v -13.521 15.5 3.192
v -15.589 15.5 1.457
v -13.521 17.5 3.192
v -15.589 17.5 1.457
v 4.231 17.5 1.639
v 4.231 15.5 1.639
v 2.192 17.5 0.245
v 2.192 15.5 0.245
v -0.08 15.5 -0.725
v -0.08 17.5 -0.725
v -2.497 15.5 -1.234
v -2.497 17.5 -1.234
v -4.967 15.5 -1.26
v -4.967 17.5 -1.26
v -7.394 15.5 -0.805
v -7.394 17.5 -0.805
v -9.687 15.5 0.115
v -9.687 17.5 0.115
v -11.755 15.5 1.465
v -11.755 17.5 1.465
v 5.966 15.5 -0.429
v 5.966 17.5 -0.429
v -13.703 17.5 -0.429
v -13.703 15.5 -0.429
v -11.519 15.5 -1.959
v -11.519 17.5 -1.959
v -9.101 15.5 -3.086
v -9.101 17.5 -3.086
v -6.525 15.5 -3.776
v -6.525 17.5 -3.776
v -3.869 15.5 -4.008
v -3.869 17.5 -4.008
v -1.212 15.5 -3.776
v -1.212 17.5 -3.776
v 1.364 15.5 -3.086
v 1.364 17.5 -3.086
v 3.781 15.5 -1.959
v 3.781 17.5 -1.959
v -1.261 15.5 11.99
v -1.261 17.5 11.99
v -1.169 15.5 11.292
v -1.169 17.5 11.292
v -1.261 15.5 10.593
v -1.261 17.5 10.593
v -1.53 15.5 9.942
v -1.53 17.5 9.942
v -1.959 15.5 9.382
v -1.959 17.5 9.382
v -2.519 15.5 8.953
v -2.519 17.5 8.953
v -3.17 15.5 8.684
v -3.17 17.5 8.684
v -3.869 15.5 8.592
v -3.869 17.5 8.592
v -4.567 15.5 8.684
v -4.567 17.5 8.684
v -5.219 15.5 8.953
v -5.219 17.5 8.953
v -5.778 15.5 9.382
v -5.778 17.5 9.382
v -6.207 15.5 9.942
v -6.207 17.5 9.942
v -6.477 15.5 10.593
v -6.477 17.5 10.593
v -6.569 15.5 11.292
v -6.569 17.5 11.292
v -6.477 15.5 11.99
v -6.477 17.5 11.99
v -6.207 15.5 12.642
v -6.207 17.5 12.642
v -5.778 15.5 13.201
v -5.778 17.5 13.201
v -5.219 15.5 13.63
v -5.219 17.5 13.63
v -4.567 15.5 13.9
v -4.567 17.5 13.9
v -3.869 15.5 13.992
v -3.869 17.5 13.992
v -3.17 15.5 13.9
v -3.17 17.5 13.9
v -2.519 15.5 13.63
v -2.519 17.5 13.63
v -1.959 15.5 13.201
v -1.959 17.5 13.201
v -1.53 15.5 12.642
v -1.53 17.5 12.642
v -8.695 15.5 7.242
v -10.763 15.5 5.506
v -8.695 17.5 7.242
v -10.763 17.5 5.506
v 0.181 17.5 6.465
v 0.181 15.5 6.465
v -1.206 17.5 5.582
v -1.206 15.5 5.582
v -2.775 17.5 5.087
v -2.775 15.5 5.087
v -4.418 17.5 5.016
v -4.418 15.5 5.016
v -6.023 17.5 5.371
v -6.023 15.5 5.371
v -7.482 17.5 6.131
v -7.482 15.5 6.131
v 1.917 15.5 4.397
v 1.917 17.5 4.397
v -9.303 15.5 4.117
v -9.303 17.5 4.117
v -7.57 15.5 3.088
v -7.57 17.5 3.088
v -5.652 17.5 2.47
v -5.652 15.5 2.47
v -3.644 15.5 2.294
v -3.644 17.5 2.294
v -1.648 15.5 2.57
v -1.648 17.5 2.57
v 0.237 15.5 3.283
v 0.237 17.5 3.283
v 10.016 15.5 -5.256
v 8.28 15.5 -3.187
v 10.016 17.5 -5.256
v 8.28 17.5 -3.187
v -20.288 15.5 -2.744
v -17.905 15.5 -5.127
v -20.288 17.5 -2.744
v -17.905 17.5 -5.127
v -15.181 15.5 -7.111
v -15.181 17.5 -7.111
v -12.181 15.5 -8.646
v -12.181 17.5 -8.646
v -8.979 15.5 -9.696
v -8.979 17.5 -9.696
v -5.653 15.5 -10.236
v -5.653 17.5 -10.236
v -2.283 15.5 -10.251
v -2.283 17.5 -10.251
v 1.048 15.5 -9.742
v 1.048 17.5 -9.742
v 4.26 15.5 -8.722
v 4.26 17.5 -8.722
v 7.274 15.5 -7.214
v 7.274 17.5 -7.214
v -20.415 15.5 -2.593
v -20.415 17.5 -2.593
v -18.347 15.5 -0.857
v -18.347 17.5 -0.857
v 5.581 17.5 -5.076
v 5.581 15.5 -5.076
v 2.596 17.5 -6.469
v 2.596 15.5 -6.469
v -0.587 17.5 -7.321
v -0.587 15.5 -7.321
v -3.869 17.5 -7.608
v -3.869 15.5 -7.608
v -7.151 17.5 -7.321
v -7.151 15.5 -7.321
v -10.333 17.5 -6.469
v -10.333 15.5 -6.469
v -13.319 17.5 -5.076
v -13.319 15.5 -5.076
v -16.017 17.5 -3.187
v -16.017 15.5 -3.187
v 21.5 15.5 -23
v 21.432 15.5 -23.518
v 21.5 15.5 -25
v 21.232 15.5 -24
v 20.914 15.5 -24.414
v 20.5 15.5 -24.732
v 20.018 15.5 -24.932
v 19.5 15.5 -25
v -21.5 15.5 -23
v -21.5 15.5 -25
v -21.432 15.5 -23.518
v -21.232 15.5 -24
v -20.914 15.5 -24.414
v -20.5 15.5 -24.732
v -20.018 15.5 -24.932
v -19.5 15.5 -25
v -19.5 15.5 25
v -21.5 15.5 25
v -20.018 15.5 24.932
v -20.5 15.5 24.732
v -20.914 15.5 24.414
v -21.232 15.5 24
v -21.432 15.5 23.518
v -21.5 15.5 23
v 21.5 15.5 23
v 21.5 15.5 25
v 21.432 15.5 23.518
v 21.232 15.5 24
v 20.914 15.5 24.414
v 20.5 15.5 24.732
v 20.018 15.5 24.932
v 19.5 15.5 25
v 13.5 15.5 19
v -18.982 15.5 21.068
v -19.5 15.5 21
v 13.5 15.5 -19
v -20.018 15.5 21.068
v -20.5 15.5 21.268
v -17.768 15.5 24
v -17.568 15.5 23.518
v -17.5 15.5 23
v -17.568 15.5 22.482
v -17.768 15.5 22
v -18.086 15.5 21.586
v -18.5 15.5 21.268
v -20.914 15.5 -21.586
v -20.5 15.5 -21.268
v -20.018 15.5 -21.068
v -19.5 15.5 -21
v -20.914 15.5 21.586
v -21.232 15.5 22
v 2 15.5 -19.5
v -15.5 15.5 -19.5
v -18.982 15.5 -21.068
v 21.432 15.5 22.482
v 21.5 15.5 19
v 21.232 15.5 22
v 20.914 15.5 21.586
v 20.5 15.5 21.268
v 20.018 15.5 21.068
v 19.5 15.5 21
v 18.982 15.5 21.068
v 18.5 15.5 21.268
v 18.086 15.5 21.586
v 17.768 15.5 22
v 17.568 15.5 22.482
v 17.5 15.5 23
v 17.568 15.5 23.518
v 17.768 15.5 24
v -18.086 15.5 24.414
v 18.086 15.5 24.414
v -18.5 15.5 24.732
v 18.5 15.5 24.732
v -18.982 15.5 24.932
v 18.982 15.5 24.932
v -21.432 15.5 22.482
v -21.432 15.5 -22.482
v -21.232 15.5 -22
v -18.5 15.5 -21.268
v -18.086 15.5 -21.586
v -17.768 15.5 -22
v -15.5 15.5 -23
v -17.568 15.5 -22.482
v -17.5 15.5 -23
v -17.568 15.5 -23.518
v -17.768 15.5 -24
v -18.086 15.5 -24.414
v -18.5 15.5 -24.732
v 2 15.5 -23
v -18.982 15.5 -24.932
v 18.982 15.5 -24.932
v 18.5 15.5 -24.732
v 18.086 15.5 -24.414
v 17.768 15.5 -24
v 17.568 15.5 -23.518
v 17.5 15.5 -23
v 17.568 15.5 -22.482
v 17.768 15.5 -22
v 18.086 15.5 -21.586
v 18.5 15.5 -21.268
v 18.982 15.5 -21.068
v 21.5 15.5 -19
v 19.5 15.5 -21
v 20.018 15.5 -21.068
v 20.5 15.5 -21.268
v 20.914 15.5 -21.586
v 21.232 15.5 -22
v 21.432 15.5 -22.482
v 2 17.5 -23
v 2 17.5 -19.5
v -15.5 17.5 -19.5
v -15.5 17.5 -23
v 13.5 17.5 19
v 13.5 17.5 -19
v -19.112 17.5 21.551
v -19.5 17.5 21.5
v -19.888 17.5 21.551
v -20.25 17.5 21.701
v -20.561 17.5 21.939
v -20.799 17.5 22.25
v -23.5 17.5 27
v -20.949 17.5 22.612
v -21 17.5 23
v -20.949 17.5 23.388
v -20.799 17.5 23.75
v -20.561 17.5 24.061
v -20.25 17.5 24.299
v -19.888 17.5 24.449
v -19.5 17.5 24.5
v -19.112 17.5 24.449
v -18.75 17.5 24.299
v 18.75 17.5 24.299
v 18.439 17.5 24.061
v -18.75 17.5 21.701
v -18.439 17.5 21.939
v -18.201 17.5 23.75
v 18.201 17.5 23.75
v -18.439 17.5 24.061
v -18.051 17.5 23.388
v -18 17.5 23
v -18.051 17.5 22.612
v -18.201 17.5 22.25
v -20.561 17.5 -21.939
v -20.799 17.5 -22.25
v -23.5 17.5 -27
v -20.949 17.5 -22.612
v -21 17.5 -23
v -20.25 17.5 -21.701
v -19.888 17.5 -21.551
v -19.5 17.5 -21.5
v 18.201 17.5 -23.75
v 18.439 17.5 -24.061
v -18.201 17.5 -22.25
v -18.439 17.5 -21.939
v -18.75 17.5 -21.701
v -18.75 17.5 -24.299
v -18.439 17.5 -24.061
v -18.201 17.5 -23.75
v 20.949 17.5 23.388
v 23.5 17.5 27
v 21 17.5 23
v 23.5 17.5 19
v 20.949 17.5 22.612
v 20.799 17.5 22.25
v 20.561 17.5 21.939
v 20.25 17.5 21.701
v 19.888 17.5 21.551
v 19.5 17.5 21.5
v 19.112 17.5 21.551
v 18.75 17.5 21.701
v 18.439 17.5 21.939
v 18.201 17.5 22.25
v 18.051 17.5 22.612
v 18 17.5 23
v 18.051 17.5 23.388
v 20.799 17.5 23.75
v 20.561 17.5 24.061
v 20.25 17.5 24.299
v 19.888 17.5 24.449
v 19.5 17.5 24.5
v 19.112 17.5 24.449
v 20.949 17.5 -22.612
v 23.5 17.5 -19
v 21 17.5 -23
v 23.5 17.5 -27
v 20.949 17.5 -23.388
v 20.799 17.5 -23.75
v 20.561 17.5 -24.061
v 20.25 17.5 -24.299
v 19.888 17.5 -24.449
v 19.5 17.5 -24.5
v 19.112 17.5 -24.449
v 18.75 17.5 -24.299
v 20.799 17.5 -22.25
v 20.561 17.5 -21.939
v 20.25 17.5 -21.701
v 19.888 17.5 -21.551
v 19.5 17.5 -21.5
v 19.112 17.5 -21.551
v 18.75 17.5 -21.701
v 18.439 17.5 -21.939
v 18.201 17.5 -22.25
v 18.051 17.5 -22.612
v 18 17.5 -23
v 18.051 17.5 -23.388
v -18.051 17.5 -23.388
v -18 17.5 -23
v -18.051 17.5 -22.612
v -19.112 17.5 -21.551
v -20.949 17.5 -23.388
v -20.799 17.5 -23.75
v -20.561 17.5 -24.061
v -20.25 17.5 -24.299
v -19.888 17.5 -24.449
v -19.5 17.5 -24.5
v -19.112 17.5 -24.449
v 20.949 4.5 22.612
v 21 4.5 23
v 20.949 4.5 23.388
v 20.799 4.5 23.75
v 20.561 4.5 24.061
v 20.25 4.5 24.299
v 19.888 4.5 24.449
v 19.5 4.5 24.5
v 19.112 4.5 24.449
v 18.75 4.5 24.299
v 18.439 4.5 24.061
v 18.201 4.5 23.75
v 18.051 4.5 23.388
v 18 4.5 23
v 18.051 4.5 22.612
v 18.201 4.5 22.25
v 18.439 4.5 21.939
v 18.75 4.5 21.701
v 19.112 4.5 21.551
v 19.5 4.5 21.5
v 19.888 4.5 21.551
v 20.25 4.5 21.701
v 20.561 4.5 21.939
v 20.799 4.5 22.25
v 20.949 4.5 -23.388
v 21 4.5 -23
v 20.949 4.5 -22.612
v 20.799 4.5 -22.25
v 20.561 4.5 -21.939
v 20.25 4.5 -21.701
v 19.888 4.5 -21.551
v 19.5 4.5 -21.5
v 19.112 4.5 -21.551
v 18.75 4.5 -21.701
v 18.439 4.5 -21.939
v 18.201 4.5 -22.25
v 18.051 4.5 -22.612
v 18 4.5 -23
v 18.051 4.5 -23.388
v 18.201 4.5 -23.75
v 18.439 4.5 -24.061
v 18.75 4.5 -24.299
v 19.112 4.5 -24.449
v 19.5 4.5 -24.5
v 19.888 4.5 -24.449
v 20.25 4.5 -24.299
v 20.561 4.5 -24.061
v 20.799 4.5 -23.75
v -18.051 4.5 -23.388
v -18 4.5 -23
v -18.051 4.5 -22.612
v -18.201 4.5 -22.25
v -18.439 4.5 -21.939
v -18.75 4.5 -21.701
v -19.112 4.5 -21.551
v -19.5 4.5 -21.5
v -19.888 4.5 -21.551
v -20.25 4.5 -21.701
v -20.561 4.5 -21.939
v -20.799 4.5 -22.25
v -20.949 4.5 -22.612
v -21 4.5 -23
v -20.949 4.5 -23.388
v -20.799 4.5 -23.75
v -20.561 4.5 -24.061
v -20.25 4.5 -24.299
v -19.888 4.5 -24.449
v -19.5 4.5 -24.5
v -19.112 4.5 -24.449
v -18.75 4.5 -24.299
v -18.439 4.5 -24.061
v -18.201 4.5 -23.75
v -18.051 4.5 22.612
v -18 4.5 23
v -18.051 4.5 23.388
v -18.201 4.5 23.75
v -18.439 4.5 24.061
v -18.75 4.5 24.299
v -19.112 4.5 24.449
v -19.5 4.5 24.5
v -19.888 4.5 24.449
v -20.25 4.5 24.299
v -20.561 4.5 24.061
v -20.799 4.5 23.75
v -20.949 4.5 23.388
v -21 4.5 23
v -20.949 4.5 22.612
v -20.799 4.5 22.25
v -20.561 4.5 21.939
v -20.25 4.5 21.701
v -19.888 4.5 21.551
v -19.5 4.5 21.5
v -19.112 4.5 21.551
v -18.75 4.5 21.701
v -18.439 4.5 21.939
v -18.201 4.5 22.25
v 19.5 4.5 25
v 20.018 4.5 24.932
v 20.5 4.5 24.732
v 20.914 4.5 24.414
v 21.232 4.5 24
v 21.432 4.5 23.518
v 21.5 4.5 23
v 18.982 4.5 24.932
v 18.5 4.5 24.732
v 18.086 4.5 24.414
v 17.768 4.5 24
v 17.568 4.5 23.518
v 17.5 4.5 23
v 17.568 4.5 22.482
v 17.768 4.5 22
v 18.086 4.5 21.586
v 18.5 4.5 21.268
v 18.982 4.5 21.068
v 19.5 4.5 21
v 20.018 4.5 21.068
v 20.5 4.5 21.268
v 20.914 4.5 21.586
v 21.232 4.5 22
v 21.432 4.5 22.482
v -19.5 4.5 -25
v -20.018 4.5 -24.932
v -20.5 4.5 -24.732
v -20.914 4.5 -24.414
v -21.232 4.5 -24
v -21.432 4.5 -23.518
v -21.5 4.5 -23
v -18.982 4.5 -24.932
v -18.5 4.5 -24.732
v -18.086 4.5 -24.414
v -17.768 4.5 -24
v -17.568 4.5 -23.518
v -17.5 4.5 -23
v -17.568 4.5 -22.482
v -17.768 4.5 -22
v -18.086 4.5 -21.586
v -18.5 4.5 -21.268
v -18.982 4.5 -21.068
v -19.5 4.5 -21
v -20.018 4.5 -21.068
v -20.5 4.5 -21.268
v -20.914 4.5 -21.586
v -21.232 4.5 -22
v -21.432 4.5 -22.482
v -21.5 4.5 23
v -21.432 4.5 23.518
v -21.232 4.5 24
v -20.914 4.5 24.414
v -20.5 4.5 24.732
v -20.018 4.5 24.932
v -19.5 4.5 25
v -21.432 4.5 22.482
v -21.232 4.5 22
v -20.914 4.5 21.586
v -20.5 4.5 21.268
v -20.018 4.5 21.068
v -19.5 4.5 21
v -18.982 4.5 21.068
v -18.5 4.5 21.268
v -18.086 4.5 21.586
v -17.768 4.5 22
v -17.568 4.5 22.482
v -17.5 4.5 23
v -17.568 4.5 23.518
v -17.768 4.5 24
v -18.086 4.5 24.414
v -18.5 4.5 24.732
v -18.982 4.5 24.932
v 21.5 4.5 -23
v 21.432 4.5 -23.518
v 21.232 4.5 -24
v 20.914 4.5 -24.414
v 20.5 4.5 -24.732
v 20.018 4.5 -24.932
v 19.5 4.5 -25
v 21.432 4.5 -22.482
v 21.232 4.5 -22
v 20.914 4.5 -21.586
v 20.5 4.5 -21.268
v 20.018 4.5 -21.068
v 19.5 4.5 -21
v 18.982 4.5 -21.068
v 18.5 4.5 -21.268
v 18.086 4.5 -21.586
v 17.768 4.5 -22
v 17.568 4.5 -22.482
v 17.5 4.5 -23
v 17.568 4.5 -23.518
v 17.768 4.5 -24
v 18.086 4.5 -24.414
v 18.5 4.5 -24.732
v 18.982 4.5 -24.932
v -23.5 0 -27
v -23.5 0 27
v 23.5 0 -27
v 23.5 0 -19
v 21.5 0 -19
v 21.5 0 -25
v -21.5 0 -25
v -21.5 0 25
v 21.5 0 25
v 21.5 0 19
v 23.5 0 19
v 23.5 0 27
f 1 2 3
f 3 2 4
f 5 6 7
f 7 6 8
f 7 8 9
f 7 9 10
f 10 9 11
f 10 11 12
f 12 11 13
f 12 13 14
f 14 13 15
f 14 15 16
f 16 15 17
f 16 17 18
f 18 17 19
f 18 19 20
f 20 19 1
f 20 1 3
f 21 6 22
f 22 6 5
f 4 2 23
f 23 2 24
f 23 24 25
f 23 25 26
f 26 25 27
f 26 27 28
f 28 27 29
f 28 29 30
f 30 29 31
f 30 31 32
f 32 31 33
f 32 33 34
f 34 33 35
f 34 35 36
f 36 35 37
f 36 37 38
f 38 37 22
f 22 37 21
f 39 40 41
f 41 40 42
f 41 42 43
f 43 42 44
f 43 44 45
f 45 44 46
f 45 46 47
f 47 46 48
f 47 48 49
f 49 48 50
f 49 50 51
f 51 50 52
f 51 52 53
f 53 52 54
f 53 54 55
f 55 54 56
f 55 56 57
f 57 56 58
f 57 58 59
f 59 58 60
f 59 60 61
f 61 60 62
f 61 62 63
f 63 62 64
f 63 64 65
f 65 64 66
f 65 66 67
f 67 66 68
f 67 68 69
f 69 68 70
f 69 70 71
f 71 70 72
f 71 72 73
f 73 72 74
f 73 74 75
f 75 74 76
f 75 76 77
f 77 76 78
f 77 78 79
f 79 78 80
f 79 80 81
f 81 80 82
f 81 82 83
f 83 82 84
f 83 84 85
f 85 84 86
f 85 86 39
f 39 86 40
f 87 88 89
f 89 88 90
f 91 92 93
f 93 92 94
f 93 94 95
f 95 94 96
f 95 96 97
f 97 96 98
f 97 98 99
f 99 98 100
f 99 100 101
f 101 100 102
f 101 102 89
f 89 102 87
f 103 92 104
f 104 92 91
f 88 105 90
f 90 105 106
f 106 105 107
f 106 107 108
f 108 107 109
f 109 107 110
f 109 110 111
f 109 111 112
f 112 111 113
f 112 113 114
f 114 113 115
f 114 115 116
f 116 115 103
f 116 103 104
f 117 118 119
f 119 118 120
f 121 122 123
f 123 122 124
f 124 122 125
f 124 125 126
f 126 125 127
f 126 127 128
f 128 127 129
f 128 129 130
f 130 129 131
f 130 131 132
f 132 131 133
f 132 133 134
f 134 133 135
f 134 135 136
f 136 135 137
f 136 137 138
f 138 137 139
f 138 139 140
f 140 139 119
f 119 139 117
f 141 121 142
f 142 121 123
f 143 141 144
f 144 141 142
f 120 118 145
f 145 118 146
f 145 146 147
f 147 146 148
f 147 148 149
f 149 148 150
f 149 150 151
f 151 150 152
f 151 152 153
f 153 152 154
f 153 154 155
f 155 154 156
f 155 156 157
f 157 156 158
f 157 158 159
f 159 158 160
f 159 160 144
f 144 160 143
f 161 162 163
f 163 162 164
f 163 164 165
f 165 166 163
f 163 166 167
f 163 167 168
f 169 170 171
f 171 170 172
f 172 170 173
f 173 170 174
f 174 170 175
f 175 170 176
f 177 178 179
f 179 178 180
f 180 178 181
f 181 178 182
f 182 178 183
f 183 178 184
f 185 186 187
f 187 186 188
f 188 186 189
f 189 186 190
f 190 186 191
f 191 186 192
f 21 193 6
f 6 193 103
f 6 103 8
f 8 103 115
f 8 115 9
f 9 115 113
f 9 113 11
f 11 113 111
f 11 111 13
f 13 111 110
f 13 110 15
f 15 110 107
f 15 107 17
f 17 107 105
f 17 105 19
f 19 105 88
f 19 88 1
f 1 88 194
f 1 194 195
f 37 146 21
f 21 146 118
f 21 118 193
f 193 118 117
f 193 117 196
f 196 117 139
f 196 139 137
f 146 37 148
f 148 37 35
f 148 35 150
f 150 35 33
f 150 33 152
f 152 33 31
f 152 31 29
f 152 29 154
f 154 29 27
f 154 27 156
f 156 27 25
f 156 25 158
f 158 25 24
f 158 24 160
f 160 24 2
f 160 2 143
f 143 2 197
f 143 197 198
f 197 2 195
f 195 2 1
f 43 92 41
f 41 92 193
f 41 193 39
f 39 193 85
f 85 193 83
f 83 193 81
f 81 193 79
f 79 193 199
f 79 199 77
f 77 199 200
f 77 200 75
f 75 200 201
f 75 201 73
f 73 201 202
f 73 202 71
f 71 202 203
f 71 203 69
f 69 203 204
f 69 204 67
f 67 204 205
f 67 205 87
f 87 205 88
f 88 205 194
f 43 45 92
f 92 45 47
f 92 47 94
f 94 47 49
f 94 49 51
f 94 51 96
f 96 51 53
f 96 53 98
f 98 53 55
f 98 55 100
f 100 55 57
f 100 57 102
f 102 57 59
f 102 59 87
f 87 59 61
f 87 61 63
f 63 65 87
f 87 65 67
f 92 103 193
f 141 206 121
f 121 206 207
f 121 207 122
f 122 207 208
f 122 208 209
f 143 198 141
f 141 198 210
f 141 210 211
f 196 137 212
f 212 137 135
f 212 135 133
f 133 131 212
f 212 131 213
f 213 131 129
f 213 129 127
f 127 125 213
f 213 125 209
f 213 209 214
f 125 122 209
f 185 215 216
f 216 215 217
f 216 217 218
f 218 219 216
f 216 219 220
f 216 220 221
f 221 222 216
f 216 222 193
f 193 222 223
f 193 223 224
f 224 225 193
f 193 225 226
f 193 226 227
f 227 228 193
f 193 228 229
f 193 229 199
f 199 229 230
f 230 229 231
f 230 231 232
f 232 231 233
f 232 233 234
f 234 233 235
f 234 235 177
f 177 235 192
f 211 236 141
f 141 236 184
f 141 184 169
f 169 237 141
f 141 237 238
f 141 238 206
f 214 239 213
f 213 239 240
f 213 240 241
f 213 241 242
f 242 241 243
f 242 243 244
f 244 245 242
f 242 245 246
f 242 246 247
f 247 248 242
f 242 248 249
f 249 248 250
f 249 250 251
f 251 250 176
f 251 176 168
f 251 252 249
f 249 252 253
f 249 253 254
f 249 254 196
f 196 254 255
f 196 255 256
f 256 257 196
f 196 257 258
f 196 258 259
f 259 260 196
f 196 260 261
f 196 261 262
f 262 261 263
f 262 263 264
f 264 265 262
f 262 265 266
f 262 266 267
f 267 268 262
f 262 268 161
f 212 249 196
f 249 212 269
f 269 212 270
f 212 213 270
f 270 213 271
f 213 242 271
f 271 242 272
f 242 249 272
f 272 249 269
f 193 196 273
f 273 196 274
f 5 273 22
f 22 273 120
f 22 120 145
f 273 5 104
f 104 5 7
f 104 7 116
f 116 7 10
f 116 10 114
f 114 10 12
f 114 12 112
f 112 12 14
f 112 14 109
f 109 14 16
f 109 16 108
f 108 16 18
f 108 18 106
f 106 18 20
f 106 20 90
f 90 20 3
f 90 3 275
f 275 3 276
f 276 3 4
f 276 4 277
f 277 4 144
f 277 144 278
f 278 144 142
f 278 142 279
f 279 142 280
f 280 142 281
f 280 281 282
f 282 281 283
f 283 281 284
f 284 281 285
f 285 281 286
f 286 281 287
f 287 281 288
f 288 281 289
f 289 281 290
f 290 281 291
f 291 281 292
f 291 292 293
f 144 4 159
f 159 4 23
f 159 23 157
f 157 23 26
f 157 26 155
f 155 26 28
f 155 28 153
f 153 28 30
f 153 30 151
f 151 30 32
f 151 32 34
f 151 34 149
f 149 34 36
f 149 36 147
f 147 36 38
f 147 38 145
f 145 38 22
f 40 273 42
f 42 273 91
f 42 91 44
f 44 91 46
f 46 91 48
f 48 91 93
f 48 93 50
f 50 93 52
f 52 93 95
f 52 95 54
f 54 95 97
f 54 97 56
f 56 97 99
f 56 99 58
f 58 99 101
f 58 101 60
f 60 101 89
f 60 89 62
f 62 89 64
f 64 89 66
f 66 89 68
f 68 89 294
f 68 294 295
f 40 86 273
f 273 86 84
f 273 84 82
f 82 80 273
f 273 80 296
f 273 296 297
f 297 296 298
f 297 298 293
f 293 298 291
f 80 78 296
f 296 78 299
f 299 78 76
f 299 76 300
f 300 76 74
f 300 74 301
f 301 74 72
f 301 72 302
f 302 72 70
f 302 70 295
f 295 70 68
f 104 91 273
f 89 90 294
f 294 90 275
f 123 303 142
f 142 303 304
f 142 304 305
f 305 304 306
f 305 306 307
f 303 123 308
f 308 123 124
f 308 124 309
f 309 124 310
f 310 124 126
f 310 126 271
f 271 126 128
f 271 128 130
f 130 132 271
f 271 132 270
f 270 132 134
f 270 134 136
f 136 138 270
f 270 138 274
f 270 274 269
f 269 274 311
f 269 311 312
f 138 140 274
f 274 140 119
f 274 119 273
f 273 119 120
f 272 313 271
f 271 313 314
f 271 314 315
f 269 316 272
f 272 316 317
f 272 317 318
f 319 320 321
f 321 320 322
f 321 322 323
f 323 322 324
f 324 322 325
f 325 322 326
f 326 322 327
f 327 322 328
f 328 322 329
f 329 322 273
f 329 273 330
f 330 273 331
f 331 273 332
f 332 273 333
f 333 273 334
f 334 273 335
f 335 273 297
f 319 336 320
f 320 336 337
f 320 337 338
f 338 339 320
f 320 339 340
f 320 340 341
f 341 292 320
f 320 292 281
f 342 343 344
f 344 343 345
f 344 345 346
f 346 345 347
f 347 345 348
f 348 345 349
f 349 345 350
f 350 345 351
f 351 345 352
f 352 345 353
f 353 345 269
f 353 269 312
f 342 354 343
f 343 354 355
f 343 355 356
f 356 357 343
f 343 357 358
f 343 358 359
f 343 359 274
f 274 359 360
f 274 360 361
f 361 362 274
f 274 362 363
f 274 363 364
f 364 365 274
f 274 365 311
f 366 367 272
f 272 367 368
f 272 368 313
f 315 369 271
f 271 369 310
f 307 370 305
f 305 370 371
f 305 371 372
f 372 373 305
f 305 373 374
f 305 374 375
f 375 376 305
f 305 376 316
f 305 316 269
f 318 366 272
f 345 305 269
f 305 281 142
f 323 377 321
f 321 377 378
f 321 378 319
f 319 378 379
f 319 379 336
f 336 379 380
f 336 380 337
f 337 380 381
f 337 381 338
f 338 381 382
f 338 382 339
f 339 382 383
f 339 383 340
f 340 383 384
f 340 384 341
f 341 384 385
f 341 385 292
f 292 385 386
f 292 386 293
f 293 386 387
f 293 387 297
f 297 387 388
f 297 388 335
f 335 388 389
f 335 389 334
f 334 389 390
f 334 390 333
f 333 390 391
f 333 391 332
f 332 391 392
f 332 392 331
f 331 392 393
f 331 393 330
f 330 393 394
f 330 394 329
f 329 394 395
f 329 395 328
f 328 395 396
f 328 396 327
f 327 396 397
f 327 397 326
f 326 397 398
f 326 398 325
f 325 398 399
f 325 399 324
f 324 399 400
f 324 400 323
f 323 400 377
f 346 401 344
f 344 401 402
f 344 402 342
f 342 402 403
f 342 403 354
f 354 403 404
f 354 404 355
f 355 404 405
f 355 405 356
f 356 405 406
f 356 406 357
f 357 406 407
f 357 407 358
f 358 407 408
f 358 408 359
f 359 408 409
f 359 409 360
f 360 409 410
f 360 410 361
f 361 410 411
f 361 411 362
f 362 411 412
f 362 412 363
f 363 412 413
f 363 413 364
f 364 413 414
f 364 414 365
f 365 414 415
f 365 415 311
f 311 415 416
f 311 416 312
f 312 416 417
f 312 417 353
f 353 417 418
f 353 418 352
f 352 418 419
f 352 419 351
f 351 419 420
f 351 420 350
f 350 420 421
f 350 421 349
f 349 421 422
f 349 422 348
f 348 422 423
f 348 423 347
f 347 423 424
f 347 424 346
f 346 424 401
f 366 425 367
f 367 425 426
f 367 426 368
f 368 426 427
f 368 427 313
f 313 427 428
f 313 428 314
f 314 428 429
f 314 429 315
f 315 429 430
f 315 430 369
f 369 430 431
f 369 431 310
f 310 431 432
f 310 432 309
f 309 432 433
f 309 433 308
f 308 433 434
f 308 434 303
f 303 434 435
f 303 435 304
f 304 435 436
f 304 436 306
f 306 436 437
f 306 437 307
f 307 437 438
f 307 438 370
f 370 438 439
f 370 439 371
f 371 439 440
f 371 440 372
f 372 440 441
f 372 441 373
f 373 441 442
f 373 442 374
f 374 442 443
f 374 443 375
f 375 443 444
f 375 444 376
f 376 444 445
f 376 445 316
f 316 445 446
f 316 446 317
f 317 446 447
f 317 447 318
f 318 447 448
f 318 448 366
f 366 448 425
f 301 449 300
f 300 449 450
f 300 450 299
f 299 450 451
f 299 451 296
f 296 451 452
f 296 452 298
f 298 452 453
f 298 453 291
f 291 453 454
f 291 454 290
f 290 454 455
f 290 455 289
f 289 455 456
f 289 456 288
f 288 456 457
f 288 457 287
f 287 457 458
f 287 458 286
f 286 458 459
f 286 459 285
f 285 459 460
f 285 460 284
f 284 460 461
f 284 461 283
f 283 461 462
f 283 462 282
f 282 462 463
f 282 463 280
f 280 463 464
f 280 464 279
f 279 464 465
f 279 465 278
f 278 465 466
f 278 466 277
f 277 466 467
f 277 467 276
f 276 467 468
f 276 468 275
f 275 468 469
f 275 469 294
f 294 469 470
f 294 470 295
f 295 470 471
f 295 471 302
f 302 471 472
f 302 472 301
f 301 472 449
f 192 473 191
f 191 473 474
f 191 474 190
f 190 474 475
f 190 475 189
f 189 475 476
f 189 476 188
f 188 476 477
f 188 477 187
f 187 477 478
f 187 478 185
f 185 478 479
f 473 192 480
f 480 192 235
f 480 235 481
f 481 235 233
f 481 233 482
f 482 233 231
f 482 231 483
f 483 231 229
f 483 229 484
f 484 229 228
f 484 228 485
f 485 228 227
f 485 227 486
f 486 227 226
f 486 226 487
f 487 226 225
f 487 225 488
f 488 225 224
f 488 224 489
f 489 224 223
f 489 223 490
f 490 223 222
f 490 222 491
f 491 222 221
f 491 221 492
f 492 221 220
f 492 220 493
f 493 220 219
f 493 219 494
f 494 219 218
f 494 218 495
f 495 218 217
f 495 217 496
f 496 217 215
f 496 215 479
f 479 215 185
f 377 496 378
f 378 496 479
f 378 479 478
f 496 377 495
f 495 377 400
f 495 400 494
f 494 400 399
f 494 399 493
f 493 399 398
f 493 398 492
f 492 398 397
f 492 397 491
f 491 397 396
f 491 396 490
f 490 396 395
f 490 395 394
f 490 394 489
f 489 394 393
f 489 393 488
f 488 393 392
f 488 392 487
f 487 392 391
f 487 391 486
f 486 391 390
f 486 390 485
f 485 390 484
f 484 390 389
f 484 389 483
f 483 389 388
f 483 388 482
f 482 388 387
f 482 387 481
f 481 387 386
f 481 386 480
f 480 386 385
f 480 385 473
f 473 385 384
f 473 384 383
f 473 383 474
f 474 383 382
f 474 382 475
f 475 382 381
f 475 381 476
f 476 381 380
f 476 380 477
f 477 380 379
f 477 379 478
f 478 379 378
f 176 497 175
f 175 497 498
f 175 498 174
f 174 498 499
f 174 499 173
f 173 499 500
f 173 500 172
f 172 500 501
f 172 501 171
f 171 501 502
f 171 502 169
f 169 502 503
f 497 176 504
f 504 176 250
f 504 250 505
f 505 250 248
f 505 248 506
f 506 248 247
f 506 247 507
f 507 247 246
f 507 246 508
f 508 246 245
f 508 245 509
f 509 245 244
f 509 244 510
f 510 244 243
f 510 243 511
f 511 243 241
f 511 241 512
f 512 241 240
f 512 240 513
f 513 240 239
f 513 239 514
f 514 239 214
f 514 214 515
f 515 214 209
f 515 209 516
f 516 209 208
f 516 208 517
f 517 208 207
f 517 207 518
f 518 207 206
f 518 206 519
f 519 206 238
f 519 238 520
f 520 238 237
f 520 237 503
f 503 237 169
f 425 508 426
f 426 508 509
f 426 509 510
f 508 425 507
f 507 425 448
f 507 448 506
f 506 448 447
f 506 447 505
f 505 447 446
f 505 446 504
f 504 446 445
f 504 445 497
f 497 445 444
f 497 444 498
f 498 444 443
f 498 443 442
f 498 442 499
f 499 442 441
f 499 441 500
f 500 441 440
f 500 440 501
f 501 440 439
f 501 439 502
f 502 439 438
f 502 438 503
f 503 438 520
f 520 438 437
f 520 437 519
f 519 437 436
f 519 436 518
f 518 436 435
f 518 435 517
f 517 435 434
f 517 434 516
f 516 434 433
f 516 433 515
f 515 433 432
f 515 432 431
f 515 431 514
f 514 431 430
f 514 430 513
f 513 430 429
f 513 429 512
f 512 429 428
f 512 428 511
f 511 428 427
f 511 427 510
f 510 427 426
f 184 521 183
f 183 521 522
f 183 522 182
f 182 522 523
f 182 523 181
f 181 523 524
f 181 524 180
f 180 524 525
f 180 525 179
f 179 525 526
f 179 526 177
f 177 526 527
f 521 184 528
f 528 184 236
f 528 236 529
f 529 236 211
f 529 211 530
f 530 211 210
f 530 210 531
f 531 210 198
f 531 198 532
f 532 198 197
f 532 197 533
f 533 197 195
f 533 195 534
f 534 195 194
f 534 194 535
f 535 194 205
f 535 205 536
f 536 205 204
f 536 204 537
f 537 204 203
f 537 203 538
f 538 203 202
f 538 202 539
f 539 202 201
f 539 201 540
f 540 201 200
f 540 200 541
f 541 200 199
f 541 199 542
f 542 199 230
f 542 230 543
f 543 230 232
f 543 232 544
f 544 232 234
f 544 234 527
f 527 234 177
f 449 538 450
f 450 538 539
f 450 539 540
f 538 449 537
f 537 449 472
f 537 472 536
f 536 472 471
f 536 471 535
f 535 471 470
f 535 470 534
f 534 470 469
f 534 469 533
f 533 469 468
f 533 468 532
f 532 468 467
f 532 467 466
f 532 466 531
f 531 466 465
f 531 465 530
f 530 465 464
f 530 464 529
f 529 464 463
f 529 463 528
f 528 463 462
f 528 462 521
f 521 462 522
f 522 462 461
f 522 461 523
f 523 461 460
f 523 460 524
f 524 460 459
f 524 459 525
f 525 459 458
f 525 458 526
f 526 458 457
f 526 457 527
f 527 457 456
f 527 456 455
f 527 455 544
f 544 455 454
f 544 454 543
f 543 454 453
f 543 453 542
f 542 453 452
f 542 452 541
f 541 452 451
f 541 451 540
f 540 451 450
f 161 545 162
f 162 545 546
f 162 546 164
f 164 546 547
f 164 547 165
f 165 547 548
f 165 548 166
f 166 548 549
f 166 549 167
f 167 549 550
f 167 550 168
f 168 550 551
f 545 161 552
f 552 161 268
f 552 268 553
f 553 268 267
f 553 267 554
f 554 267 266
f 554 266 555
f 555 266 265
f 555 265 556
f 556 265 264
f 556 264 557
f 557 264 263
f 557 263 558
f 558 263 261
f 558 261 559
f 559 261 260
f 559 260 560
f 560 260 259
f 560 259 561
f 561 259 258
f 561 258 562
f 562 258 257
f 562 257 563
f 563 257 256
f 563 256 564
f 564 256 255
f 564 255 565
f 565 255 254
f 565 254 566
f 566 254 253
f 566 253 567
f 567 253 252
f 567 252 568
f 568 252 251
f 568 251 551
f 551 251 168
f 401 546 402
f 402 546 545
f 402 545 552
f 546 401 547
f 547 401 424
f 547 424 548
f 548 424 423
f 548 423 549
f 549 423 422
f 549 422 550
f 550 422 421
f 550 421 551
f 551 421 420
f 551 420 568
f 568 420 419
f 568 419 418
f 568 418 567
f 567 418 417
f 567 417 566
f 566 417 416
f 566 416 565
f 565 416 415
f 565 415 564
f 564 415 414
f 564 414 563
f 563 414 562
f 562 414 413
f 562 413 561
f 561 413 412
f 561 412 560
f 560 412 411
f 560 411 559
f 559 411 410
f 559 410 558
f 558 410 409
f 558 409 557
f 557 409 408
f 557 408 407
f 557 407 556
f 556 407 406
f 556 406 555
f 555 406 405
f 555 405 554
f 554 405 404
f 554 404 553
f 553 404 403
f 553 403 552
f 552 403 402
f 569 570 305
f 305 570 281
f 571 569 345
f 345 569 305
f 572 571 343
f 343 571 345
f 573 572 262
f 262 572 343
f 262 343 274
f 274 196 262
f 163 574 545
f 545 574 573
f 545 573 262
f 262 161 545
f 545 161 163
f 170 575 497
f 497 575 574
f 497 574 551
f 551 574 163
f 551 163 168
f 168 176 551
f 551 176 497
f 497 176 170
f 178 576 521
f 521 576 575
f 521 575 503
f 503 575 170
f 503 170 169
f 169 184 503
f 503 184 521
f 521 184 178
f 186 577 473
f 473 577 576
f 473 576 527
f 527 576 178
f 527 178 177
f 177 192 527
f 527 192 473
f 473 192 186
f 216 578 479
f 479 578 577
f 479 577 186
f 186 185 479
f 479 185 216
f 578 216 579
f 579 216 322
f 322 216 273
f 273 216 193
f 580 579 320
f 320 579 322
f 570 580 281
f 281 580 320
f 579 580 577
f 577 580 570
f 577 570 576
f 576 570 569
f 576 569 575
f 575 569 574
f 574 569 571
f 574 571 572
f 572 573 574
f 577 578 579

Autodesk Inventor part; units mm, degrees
ref_plane "YZ Plane" through (0, 0, 0) normal (1, 0, 0) x (0, 1, 0)
ref_plane "XZ Plane" through (0, 0, 0) normal (0, 1, 0) x (-1, 0, 0)
ref_plane "XY Plane" through (0, 0, 0) normal (0, 0, 1) x (1, 0, 0)
sketch "Sketch1" plane through (0, 0, 0) normal (0, 1, 0) x (-1, 0, 0)
  line L0 (23.5, 27) -> (-23.5, 27)
  line L1 (-23.5, -27) -> (23.5, -27)
  line L2 (23.5, -27) -> (23.5, 27)
  line L3 (21.5, 25) -> (-21.5, 25)
  line L4 (-21.5, -25) -> (21.5, -25)
  line L5 (21.5, -25) -> (21.5, 25)
  line L6 (-21.5, -25) -> (-21.5, -19)
  line L7 (-21.5, -19) -> (-23.5, -19)
  line L8 (-21.5, 25) -> (-21.5, 19)
  line L9 (-21.5, 19) -> (-23.5, 19)
  line L10 (-23.5, 27) -> (-23.5, 19)
  line L11 (-23.5, -19) -> (-23.5, -27)
  line L12 (-21.5, 25) -> (-21.5, 19)
  line L13 (-21.5, -19) -> (-21.5, -25)
  dimension "d2" = 47
  dimension "d3" = 54
  dimension "d4" = 43
  dimension "d5" = 50
  dimension "d6" = 6
  dimension "d7" = 6
extrude "Extrusion1" add sketch "Sketch1" along normal blind 4.5
sketch "Sketch2" plane through (0, 4.5, 0) normal (0, 1, 0) x (1, 0, 0)
  line L0 (23.5, -27) -> (-23.5, -27)
  line L1 (23.5, 27) -> (-23.5, 27) projected
  line L2 (-23.5, -27) -> (-23.5, 27)
  line L3 (-23.5, 27) -> (23.5, 27)
  line L4 (23.5, 19) -> (23.5, 27) projected
  line L5 (23.5, 27) -> (23.5, 19)
  line L6 (23.5, 19) -> (21.5, 19)
  line L7 (21.5, 25) -> (21.5, 19) projected
  line L8 (21.5, 19) -> (21.5, 25)
  line L9 (21.5, 25) -> (-21.5, 25)
  line L10 (-21.5, -25) -> (-21.5, 25) projected
  line L11 (-21.5, 25) -> (-21.5, -25)
  line L12 (-21.5, -25) -> (21.5, -25)
  line L13 (21.5, -25) -> (21.5, -19)
  line L14 (21.5, -19) -> (23.5, -19)
  line L15 (23.5, -27) -> (23.5, -19) projected
  line L16 (23.5, -19) -> (23.5, -27)
  line L17 (21.5, -25) -> (-21.5, -25) projected
  line L18 (-21.5, -25) -> (-19.5, -25)
  circle A0 centre (-19.5, -23) radius 1.5
  circle A1 centre (-19.5, -23) radius 2
  line L19 (-21.5, 25) -> (-19.5, 25)
  line L20 (-21.5, 25) -> (21.5, 25) projected
  circle A2 centre (-19.5, 23) radius 1.5
  circle A3 centre (-19.5, 23) radius 2
  line L21 (21.5, 25) -> (19.5, 25)
  circle A4 centre (19.5, 23) radius 1.5
  circle A5 centre (19.5, 23) radius 2
  line L22 (21.5, -25) -> (19.5, -25)
  circle A6 centre (19.5, -23) radius 1.5
  circle A7 centre (19.5, -23) radius 2
  point P0 (0, 0)
  dimension "d13" = 2
extrude "Extrusion2" add sketch "Sketch2" along normal blind 11 contours L0 L2 L1 L4 L6 L7 L9 L10 L12 L13 L14 L15 | A7 | A1 | A5 | A3
sketch "Sketch3" plane through (0, 15.5, 0) normal (0, 1, 0) x (1, 0, 0)
  point P0 (0, 0)
sketch "Sketch4" plane through (0, 15.5, 0) normal (0, 1, 0) x (1, 0, 0)
  circle A0 centre (-19.5, -23) radius 1.5 projected
  circle A1 centre (-19.5, -23) radius 1.5
  circle A2 centre (-19.5, 23) radius 1.5 projected
  circle A3 centre (-19.5, 23) radius 1.5
  arc A4 (19.5, 25) -> (21.5, 23) centre (19.5, 23) ccw projected
  circle A5 centre (19.5, 23) radius 1.5
  circle A6 centre (19.5, -23) radius 1.5 projected
  circle A7 centre (19.5, -23) radius 1.5
  line L0 (23.5, 27) -> (-23.5, 27) projected
  line L1 (23.5, -27) -> (-23.5, -27)
  line L2 (-23.5, -27) -> (-23.5, 27)
  line L3 (-23.5, 27) -> (23.5, 27)
  line L4 (23.5, 19) -> (23.5, 27) projected
  line L5 (23.5, 19) -> (13.5, 19)
  line L6 (23.5, -27) -> (23.5, -19) projected
  line L7 (23.5, -19) -> (13.5, -19)
  line L8 (13.5, -19) -> (13.5, 19)
  line L9 (23.5, 27) -> (23.5, 19)
  line L10 (23.5, -19) -> (23.5, -27)
  line L11 (-23.5, 27) -> (-23.5, -27) projected
  line L12 (-21.5, -25) -> (-21.5, 25) projected
  line L13 (-19.5, 25) -> (19.5, 25) projected
  line L14 (-15.5, 23) -> (2, 23)
  line L15 (2, 23) -> (2, 19.5)
  line L16 (2, 19.5) -> (-15.5, 19.5)
  line L17 (-15.5, 19.5) -> (-15.5, 23)
  point P0 (0, 0)
  dimension "d24" = 10
  dimension "d25" = 10
  dimension "d31" = 17.5
  dimension "d32" = 3.5
extrude "Extrusion3" add sketch "Sketch4" along normal blind 2
sketch "Sketch5" plane through (-23.5, 0, -27) normal (-1, 0, 0) x (0, 0, 1)
  point P0 (27, 0)
sketch "Sketch6" plane through (-23.5, 0, -27) normal (-1, 0, 0) x (0, 0, 1)
  point P0 (27, 0)
sketch "Sketch7" plane through (0, 17.5, 0) normal (0, 1, 0) x (1, 0, 0)
  circle A0 centre (-3.8686, -11.2916) radius 2.7
  arc A1 (0.181, -6.4655) -> (-8.6946, -7.242) centre (-3.8686, -11.2916) ccw
  arc A2 (1.9165, -4.3972) -> (-10.763, -5.5065) centre (-3.8686, -11.2916) ccw
  arc A3 (4.2306, -1.6394) -> (-13.5207, -3.1924) centre (-3.8686, -11.2916) ccw
  arc A4 (5.9661, 0.4289) -> (-15.589, -1.4569) centre (-3.8686, -11.2916) ccw
  arc A5 (8.2801, 3.1867) -> (-18.3468, 0.8571) centre (-3.8686, -11.2916) ccw
  arc A6 (10.0162, 5.2557) -> (-20.2878, 2.7444) centre (-3.8686, -11.2916) ccw
  line L0 (-20.2878, 2.7444) -> (-20.4151, 2.5927)
  line L1 (-20.4151, 2.5927) -> (-20.2871, 2.4853)
  line L2 (-18.3468, 0.8571) -> (-20.2871, 2.4853)
  line L3 (-13.5207, -3.1924) -> (-15.589, -1.4569)
  line L4 (-8.6946, -7.242) -> (-10.763, -5.5065)
  line L5 (0.181, -6.4655) -> (1.9165, -4.3972)
  line L6 (4.2306, -1.6394) -> (5.9661, 0.4289)
  line L7 (8.2801, 3.1867) -> (10.0162, 5.2557)
  dimension "d58" = 5.4
extrude "Extrusion4" cut sketch "Sketch7" against normal through all
properties part number "Box1_Top"
